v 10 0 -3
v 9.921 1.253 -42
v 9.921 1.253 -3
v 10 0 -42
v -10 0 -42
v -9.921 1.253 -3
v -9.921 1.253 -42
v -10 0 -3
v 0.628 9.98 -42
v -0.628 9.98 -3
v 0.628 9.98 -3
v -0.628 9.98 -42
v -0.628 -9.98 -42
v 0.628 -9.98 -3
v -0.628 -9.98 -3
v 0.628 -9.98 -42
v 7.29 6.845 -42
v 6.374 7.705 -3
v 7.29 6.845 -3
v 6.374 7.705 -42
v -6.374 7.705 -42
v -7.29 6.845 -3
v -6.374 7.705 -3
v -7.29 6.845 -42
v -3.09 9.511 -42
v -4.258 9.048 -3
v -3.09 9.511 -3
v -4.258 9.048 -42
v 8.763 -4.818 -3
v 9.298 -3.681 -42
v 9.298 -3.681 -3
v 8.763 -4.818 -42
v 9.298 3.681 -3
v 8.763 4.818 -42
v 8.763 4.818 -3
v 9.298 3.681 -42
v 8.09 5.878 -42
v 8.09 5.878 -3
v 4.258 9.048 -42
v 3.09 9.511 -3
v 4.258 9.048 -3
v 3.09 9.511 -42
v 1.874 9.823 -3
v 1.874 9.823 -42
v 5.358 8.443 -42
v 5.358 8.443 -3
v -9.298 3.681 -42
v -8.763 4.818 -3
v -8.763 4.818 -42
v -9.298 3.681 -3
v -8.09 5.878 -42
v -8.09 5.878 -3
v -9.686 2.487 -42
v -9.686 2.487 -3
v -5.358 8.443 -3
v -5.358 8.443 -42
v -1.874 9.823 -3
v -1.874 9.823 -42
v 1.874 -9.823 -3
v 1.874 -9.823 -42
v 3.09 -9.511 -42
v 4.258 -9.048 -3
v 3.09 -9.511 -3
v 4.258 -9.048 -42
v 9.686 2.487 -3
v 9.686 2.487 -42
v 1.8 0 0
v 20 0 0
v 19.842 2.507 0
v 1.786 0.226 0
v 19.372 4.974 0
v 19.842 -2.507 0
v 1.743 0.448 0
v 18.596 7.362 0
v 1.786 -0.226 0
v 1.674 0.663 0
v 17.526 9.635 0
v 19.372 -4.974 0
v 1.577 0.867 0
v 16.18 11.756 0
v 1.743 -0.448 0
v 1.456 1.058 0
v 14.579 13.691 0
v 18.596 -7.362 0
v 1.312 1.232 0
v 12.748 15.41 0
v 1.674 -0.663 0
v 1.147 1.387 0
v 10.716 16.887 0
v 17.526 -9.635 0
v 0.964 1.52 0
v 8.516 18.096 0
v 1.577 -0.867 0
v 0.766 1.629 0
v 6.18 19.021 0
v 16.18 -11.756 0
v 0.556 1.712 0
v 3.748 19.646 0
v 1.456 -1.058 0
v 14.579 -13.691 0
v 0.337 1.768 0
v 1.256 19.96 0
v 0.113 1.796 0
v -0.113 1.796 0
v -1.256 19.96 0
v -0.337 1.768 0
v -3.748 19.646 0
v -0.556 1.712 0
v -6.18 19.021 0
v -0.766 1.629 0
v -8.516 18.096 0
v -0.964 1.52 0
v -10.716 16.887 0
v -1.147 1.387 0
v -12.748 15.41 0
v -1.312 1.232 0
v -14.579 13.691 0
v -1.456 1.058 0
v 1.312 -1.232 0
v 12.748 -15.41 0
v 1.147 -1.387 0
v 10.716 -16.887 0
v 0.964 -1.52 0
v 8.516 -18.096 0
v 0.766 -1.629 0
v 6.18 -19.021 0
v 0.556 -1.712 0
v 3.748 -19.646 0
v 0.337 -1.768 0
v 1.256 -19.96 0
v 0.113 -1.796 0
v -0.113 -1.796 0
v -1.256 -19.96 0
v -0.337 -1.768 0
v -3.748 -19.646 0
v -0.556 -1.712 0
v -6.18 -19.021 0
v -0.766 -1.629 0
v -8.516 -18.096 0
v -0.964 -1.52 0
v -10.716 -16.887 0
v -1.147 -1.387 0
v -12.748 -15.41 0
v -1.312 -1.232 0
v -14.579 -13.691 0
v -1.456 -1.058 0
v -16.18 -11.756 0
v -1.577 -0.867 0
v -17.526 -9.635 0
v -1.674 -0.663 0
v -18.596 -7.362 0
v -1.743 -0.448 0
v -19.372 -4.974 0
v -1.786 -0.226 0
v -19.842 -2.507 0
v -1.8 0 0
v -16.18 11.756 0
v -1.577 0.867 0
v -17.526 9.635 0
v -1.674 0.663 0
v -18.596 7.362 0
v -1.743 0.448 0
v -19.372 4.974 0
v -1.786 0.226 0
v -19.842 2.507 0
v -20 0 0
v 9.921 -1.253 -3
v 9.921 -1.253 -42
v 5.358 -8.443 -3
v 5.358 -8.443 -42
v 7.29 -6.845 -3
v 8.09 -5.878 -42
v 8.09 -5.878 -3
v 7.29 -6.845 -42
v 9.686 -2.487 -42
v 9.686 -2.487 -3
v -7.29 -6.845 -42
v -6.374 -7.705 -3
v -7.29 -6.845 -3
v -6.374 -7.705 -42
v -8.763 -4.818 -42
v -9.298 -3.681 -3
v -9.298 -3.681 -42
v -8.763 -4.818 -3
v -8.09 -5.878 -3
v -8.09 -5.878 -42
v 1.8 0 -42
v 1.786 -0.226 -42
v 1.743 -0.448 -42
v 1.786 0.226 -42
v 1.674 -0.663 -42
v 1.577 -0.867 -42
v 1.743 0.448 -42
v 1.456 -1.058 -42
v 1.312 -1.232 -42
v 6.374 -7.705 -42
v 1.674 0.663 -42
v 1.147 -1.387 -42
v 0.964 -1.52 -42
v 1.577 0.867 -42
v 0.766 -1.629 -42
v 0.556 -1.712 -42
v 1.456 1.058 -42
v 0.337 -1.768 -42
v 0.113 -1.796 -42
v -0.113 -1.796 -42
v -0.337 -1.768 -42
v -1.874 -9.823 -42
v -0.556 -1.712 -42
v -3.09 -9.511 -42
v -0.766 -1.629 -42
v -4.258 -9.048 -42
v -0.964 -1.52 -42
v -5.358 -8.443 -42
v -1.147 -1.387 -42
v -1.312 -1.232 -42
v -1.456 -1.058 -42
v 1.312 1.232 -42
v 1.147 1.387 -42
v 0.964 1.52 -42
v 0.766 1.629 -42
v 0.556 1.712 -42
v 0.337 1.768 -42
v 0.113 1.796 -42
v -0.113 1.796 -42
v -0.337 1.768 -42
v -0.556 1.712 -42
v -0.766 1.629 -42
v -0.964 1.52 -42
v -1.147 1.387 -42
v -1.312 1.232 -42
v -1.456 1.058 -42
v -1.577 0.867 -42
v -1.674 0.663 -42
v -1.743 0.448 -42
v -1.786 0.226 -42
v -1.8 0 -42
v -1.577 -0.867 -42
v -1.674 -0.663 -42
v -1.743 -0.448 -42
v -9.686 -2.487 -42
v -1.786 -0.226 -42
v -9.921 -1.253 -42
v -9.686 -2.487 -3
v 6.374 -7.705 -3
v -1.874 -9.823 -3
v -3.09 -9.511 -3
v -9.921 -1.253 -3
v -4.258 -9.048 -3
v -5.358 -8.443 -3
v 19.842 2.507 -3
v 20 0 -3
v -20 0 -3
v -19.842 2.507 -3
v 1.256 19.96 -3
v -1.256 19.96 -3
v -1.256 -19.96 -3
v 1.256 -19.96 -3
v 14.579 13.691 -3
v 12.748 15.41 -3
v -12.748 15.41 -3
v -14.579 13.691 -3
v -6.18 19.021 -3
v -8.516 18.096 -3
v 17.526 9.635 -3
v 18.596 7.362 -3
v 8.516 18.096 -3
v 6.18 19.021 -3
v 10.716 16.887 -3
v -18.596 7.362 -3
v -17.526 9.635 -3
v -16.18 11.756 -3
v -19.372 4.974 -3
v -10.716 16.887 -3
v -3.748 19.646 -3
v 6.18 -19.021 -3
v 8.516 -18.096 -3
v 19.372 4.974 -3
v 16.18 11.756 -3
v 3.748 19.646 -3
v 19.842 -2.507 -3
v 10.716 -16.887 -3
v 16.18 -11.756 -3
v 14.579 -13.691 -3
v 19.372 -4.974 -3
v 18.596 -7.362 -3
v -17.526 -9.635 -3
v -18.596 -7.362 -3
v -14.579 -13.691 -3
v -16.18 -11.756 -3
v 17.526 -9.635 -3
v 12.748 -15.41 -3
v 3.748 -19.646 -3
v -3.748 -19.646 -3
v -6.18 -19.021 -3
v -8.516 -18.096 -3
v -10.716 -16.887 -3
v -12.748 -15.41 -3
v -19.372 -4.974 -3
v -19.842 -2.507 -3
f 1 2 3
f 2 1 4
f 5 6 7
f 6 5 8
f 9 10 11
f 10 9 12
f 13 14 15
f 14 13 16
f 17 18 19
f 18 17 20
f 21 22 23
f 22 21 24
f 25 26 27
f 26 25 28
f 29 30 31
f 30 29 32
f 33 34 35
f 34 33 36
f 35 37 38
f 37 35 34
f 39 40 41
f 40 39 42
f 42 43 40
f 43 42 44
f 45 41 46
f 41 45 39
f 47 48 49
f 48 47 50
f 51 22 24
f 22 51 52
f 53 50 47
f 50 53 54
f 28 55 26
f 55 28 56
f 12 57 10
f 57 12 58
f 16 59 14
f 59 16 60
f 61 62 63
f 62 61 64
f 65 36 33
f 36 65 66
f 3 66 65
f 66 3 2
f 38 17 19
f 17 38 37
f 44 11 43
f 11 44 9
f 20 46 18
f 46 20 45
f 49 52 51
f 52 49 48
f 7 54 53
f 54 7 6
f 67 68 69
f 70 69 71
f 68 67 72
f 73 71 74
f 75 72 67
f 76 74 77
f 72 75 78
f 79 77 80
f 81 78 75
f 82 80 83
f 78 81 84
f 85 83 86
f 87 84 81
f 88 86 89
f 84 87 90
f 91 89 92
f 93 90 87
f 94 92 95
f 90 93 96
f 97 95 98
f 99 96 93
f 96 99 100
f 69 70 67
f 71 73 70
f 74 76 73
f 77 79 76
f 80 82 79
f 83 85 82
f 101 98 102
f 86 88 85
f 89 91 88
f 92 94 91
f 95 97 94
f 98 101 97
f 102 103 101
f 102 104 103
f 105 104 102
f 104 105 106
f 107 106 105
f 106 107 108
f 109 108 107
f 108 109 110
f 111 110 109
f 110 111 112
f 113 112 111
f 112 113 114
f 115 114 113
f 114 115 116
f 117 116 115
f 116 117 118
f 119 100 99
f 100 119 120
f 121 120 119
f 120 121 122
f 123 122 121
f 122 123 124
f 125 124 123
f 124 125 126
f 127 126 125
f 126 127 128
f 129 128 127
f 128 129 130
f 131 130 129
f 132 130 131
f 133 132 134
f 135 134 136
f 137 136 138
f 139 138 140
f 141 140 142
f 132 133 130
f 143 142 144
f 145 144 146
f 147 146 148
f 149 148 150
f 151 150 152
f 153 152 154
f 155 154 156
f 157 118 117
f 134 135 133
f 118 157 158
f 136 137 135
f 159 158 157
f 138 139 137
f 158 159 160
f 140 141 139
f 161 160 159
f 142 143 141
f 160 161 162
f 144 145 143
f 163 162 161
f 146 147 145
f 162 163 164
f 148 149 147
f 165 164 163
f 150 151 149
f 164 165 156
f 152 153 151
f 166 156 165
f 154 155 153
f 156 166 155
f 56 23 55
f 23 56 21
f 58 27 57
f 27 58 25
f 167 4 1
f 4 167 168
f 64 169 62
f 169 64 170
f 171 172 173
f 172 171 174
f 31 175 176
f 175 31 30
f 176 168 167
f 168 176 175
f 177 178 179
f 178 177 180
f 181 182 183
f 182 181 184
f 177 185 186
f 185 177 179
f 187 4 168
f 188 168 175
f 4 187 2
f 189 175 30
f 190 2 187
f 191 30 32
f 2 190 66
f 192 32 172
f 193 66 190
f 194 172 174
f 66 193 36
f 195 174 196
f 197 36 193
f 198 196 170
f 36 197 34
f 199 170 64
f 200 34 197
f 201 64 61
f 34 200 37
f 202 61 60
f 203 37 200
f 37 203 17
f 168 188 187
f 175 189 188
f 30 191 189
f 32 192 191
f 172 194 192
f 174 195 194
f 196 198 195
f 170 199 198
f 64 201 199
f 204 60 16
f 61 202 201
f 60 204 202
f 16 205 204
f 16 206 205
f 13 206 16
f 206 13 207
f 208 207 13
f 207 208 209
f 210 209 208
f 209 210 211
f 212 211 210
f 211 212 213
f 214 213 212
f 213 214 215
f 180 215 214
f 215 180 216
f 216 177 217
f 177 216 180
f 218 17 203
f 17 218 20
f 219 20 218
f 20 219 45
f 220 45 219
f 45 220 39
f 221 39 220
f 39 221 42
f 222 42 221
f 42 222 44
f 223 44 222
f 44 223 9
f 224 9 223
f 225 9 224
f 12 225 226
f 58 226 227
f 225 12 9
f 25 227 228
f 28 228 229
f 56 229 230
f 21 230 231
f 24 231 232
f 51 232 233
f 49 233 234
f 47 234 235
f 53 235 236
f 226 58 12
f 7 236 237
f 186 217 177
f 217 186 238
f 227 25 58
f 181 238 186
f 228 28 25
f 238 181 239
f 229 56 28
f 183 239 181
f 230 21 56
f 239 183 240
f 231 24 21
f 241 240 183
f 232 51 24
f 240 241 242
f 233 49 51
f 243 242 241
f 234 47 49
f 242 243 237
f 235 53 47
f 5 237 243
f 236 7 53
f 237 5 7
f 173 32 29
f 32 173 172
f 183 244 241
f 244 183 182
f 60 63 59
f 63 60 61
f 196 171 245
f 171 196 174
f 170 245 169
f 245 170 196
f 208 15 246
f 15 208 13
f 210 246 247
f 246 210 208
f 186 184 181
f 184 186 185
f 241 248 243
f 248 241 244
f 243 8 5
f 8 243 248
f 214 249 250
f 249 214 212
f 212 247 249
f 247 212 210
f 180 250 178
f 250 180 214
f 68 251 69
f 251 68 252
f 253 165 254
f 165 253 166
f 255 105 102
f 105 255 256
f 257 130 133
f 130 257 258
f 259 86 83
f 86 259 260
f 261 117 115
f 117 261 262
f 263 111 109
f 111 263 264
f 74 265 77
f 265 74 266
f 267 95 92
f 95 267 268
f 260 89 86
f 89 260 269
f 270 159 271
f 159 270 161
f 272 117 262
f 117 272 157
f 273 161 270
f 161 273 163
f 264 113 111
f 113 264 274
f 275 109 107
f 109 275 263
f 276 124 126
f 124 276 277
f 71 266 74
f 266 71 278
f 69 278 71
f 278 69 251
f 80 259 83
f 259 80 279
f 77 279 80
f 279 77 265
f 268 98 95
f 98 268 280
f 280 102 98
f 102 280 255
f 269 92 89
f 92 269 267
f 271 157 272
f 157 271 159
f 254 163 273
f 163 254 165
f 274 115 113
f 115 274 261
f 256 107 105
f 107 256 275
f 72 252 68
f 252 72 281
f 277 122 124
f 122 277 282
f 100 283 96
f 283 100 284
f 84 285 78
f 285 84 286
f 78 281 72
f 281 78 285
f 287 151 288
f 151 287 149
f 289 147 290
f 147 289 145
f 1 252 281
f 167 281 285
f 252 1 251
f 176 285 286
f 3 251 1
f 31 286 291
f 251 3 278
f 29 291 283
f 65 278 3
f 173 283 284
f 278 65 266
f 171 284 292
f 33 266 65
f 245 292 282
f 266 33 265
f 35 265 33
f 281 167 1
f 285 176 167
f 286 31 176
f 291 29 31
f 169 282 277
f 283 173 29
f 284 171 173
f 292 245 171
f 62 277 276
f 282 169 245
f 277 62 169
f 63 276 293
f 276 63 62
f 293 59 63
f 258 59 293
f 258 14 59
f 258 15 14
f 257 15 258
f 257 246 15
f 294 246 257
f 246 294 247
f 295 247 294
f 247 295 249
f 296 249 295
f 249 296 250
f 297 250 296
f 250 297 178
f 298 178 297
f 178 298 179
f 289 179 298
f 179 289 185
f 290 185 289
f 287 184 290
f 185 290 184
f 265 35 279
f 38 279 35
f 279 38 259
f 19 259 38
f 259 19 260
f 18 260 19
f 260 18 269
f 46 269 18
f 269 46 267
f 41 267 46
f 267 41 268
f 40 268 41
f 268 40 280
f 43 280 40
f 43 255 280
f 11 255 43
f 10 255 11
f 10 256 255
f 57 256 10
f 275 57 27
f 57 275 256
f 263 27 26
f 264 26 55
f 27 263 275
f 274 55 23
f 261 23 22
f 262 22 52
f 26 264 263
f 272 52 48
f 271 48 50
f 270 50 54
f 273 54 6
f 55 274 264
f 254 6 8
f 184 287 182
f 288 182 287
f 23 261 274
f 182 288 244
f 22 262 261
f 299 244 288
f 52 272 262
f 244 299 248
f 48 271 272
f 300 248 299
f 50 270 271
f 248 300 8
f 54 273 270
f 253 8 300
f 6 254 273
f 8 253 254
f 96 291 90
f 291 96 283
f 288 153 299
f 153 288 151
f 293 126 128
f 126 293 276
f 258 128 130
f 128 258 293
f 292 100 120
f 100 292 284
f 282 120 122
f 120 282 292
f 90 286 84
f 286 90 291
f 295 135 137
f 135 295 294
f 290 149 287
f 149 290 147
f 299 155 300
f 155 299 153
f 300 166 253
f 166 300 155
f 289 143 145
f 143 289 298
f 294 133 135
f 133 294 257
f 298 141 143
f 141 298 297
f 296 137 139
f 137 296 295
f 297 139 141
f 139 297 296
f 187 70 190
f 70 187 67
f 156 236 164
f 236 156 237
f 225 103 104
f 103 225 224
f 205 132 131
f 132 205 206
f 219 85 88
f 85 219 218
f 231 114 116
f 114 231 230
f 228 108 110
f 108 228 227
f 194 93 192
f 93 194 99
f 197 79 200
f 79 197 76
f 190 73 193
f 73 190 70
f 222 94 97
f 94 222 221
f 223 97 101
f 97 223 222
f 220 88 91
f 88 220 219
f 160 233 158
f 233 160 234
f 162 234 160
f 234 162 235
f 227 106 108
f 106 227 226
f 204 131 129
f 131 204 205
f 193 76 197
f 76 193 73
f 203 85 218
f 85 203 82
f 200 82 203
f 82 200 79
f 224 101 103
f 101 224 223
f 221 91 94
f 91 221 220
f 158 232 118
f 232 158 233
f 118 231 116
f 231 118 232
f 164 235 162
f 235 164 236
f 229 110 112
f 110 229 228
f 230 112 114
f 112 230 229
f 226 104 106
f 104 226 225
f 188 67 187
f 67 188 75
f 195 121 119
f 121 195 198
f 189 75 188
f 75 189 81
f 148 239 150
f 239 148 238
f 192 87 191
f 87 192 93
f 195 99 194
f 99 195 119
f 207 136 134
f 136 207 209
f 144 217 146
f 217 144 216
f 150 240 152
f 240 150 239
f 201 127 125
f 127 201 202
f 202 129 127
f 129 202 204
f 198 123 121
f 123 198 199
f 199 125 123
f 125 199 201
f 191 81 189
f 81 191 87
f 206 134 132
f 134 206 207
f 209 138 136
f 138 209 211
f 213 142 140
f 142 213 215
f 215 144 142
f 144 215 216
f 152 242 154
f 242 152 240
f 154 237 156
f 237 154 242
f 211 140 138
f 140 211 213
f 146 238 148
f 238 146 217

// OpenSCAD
$fn = 50;


difference() {
	union() {
		translate(v = [0, 0, -42.0000000000]) {
			cylinder(h = 42, r = 10.0000000000);
		}
		translate(v = [0, 0, -3.0000000000]) {
			cylinder(h = 3, r = 20.0000000000);
		}
	}
	union() {
		#translate(v = [0, 0, -42]) {
			cylinder(h = 42, r = 1.8000000000);
		}
	}
}
